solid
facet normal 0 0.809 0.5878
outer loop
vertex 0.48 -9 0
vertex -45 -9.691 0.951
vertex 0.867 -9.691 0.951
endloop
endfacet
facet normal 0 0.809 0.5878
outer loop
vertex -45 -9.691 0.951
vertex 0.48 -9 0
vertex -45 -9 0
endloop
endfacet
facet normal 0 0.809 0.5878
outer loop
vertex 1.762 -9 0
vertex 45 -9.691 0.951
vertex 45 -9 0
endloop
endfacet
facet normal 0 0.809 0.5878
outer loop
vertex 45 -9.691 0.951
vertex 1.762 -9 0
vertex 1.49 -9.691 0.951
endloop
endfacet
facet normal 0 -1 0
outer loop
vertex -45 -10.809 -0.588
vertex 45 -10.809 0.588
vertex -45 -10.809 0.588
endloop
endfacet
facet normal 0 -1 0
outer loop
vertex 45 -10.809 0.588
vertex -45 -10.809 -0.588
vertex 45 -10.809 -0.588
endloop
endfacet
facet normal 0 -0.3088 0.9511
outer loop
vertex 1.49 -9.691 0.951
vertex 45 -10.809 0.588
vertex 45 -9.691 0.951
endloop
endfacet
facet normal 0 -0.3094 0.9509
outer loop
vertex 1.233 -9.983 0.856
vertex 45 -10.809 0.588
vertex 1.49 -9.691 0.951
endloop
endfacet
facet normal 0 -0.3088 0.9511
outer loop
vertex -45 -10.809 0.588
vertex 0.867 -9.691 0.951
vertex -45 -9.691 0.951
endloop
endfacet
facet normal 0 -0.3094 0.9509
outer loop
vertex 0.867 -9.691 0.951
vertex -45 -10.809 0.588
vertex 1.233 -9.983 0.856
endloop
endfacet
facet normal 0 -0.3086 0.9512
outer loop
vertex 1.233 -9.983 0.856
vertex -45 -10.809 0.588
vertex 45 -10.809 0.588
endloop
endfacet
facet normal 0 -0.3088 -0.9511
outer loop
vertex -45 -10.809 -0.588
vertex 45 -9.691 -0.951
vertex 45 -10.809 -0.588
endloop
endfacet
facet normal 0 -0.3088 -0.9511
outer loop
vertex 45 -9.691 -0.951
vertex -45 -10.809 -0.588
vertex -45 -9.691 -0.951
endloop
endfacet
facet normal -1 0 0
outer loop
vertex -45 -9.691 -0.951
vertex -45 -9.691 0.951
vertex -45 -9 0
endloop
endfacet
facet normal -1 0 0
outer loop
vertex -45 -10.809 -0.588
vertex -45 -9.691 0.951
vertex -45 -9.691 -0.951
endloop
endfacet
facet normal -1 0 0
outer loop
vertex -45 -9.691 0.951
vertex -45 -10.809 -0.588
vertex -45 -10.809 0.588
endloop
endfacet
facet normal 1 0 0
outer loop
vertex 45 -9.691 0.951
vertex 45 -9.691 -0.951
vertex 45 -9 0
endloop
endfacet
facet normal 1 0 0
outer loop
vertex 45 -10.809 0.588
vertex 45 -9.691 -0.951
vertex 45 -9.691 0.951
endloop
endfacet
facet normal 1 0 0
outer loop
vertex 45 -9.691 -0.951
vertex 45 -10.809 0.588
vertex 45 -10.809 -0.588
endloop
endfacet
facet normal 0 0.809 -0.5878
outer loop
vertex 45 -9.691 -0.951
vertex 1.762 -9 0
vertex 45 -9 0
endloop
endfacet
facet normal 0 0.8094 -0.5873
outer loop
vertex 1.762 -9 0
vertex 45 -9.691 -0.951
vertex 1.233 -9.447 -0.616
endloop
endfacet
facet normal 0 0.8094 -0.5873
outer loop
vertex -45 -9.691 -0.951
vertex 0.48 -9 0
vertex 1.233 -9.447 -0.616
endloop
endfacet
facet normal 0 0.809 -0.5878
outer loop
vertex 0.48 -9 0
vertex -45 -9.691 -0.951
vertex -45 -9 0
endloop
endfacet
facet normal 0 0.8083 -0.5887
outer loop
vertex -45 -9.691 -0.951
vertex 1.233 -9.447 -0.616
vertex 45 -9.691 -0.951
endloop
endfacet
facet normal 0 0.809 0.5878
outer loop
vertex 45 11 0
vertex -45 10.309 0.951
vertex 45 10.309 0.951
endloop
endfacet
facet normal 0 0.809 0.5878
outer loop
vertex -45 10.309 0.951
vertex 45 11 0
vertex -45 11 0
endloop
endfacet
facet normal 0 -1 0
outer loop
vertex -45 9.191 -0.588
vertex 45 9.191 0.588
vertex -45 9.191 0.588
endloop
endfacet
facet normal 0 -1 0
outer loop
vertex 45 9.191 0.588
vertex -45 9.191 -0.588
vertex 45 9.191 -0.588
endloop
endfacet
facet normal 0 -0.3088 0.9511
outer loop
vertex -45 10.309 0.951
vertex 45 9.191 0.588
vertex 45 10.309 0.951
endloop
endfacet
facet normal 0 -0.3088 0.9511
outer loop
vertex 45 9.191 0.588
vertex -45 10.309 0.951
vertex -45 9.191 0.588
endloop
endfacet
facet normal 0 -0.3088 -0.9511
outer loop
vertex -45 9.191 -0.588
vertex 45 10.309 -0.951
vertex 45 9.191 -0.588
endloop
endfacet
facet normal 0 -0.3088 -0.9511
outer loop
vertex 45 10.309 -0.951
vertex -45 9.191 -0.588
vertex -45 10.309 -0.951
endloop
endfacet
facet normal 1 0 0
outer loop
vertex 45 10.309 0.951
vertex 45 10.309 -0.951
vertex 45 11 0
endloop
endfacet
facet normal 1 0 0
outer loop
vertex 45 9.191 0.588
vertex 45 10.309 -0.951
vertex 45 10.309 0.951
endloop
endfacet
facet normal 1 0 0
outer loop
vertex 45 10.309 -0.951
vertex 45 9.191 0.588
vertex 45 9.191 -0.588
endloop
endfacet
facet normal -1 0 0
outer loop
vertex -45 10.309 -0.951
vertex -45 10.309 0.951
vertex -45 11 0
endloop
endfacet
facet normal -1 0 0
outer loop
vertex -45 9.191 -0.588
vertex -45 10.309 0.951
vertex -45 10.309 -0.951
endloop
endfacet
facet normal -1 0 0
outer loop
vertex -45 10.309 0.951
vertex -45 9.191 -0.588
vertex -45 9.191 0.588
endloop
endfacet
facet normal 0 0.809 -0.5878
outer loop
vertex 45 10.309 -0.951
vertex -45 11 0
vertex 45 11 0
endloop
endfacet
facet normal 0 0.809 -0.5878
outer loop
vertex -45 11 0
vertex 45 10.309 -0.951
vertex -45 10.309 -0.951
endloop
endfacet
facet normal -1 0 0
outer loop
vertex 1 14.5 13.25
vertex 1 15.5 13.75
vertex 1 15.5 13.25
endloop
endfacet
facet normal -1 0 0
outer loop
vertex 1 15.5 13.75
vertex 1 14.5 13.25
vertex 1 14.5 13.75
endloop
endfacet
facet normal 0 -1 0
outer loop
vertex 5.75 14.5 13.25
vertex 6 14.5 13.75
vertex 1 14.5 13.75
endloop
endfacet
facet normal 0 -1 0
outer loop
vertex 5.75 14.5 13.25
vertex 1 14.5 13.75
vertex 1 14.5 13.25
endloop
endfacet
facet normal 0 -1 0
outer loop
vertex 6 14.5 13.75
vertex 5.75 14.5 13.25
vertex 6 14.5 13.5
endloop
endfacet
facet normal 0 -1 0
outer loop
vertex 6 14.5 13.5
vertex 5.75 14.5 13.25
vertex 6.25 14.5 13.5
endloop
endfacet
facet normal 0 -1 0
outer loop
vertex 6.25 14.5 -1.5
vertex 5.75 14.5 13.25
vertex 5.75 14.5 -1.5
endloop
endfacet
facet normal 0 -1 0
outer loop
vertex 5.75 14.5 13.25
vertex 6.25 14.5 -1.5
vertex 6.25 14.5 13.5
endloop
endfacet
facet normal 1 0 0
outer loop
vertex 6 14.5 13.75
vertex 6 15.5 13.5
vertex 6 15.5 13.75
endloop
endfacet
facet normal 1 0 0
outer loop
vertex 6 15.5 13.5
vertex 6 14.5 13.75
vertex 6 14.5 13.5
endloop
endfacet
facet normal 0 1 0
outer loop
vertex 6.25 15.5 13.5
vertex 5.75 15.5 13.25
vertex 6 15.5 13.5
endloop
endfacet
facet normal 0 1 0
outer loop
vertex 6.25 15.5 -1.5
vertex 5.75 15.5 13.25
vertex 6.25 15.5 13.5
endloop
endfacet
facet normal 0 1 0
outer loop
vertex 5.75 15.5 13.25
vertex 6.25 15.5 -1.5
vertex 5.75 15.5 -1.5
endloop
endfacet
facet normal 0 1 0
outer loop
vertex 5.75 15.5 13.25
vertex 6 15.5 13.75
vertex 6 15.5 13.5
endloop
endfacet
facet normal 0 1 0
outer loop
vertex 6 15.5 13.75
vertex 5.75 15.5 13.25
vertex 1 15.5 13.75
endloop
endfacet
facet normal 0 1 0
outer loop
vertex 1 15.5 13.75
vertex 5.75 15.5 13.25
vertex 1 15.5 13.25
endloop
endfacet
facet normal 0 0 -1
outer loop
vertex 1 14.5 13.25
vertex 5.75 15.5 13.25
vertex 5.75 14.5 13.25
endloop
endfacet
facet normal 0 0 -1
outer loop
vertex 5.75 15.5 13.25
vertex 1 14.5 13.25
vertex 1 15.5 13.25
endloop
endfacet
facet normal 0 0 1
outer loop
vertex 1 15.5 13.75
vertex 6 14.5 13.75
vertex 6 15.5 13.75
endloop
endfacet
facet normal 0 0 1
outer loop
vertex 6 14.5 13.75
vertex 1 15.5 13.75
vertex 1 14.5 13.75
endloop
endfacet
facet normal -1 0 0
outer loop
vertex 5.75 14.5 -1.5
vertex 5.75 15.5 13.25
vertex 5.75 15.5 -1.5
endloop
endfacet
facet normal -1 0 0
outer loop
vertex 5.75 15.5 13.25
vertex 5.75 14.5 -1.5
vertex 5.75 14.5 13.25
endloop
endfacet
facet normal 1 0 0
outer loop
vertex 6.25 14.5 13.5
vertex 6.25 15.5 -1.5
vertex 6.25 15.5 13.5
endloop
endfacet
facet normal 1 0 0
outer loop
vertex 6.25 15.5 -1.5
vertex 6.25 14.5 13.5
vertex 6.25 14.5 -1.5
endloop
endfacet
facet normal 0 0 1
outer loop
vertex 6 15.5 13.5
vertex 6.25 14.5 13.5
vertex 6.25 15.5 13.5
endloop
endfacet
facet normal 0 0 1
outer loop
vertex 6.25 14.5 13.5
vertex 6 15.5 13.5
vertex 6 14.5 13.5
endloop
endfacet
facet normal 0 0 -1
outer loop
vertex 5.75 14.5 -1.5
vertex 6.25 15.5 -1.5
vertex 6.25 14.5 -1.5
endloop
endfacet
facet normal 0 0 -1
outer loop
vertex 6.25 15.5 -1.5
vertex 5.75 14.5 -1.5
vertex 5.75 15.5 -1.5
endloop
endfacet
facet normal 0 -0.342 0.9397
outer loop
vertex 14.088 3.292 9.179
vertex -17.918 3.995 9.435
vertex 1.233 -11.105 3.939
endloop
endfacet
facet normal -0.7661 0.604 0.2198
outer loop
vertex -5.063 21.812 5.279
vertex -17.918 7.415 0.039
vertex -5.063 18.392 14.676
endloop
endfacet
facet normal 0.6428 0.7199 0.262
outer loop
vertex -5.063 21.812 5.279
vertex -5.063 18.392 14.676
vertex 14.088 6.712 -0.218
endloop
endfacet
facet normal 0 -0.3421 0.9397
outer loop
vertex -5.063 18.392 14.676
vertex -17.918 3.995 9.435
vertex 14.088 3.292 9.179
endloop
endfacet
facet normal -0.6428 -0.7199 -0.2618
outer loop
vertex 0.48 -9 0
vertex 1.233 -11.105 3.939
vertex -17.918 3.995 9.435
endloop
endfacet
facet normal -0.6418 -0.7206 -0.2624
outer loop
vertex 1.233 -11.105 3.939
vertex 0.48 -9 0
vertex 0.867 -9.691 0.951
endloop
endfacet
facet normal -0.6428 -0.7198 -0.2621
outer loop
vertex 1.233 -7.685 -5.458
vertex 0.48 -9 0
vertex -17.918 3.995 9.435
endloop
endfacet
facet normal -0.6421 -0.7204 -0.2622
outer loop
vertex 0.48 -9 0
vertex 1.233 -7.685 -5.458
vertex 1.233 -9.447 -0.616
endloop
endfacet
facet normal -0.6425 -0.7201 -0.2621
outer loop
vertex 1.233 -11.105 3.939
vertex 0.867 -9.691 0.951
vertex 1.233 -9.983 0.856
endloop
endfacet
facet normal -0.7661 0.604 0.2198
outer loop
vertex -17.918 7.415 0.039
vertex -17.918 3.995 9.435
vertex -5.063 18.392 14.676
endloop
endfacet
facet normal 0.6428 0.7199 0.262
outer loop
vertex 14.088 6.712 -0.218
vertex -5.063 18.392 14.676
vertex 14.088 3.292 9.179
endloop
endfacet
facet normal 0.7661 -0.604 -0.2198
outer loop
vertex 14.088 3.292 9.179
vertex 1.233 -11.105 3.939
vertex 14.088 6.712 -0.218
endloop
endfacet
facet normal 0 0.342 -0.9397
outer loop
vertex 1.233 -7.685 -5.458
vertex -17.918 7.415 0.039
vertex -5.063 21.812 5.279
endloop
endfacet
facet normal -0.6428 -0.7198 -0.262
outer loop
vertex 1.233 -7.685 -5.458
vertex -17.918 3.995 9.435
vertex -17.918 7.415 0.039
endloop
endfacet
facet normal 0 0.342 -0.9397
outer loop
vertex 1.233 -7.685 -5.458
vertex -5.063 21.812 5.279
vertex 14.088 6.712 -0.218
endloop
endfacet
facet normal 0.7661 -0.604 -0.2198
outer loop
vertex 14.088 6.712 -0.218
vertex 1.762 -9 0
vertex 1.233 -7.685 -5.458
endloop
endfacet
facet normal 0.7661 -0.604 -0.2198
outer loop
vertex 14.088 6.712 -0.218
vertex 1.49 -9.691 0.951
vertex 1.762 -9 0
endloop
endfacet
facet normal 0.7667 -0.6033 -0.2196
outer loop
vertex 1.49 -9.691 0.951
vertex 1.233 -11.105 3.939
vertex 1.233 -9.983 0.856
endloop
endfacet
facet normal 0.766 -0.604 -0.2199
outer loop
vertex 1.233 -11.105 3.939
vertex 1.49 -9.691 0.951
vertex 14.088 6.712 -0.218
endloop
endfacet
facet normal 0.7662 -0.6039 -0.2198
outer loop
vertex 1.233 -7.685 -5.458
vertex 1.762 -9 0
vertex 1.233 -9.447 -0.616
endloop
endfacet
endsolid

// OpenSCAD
// file: common.scad
module parralel_poles() {
    rotate(90, [0, 0, 1]) {
        rotate(90, [1, 0, 0]) {
            for(width = [-10, 10]) {
                translate([width, 0, 0]) {
                    cylinder(h=90, r1=1, r2=1, center=true);
                }
            }
        }
    }
}
module label() {
    translate([-45, 15, 0]) {
        text(text="BACK", size=5);
    }
    translate([-45, -20, 0]) {
        text(text="FRONT", size=5);
    }
}

module box() {
  translate([0, 2.5, 6]) {
      cube([20,25,10], center=true);
  }
}
// main file
include <common.scad>

parralel_poles();
label();

translate([6, 15, 6]) {
    rotate(90, [1, 0, 0]) {
        translate([-2.5, 7.5, 0]) {
            cube([5, 0.5, 1], center=true);
        }
        cube([0.5, 15, 1], center=true);
        text("←", size=8);
    }
}

rotate(20, [1, 0, 0]) {
    translate([0, 5, -3.5]) {
        rotate(50, [0, 0, 1]){
          box();
        }
    }
}
